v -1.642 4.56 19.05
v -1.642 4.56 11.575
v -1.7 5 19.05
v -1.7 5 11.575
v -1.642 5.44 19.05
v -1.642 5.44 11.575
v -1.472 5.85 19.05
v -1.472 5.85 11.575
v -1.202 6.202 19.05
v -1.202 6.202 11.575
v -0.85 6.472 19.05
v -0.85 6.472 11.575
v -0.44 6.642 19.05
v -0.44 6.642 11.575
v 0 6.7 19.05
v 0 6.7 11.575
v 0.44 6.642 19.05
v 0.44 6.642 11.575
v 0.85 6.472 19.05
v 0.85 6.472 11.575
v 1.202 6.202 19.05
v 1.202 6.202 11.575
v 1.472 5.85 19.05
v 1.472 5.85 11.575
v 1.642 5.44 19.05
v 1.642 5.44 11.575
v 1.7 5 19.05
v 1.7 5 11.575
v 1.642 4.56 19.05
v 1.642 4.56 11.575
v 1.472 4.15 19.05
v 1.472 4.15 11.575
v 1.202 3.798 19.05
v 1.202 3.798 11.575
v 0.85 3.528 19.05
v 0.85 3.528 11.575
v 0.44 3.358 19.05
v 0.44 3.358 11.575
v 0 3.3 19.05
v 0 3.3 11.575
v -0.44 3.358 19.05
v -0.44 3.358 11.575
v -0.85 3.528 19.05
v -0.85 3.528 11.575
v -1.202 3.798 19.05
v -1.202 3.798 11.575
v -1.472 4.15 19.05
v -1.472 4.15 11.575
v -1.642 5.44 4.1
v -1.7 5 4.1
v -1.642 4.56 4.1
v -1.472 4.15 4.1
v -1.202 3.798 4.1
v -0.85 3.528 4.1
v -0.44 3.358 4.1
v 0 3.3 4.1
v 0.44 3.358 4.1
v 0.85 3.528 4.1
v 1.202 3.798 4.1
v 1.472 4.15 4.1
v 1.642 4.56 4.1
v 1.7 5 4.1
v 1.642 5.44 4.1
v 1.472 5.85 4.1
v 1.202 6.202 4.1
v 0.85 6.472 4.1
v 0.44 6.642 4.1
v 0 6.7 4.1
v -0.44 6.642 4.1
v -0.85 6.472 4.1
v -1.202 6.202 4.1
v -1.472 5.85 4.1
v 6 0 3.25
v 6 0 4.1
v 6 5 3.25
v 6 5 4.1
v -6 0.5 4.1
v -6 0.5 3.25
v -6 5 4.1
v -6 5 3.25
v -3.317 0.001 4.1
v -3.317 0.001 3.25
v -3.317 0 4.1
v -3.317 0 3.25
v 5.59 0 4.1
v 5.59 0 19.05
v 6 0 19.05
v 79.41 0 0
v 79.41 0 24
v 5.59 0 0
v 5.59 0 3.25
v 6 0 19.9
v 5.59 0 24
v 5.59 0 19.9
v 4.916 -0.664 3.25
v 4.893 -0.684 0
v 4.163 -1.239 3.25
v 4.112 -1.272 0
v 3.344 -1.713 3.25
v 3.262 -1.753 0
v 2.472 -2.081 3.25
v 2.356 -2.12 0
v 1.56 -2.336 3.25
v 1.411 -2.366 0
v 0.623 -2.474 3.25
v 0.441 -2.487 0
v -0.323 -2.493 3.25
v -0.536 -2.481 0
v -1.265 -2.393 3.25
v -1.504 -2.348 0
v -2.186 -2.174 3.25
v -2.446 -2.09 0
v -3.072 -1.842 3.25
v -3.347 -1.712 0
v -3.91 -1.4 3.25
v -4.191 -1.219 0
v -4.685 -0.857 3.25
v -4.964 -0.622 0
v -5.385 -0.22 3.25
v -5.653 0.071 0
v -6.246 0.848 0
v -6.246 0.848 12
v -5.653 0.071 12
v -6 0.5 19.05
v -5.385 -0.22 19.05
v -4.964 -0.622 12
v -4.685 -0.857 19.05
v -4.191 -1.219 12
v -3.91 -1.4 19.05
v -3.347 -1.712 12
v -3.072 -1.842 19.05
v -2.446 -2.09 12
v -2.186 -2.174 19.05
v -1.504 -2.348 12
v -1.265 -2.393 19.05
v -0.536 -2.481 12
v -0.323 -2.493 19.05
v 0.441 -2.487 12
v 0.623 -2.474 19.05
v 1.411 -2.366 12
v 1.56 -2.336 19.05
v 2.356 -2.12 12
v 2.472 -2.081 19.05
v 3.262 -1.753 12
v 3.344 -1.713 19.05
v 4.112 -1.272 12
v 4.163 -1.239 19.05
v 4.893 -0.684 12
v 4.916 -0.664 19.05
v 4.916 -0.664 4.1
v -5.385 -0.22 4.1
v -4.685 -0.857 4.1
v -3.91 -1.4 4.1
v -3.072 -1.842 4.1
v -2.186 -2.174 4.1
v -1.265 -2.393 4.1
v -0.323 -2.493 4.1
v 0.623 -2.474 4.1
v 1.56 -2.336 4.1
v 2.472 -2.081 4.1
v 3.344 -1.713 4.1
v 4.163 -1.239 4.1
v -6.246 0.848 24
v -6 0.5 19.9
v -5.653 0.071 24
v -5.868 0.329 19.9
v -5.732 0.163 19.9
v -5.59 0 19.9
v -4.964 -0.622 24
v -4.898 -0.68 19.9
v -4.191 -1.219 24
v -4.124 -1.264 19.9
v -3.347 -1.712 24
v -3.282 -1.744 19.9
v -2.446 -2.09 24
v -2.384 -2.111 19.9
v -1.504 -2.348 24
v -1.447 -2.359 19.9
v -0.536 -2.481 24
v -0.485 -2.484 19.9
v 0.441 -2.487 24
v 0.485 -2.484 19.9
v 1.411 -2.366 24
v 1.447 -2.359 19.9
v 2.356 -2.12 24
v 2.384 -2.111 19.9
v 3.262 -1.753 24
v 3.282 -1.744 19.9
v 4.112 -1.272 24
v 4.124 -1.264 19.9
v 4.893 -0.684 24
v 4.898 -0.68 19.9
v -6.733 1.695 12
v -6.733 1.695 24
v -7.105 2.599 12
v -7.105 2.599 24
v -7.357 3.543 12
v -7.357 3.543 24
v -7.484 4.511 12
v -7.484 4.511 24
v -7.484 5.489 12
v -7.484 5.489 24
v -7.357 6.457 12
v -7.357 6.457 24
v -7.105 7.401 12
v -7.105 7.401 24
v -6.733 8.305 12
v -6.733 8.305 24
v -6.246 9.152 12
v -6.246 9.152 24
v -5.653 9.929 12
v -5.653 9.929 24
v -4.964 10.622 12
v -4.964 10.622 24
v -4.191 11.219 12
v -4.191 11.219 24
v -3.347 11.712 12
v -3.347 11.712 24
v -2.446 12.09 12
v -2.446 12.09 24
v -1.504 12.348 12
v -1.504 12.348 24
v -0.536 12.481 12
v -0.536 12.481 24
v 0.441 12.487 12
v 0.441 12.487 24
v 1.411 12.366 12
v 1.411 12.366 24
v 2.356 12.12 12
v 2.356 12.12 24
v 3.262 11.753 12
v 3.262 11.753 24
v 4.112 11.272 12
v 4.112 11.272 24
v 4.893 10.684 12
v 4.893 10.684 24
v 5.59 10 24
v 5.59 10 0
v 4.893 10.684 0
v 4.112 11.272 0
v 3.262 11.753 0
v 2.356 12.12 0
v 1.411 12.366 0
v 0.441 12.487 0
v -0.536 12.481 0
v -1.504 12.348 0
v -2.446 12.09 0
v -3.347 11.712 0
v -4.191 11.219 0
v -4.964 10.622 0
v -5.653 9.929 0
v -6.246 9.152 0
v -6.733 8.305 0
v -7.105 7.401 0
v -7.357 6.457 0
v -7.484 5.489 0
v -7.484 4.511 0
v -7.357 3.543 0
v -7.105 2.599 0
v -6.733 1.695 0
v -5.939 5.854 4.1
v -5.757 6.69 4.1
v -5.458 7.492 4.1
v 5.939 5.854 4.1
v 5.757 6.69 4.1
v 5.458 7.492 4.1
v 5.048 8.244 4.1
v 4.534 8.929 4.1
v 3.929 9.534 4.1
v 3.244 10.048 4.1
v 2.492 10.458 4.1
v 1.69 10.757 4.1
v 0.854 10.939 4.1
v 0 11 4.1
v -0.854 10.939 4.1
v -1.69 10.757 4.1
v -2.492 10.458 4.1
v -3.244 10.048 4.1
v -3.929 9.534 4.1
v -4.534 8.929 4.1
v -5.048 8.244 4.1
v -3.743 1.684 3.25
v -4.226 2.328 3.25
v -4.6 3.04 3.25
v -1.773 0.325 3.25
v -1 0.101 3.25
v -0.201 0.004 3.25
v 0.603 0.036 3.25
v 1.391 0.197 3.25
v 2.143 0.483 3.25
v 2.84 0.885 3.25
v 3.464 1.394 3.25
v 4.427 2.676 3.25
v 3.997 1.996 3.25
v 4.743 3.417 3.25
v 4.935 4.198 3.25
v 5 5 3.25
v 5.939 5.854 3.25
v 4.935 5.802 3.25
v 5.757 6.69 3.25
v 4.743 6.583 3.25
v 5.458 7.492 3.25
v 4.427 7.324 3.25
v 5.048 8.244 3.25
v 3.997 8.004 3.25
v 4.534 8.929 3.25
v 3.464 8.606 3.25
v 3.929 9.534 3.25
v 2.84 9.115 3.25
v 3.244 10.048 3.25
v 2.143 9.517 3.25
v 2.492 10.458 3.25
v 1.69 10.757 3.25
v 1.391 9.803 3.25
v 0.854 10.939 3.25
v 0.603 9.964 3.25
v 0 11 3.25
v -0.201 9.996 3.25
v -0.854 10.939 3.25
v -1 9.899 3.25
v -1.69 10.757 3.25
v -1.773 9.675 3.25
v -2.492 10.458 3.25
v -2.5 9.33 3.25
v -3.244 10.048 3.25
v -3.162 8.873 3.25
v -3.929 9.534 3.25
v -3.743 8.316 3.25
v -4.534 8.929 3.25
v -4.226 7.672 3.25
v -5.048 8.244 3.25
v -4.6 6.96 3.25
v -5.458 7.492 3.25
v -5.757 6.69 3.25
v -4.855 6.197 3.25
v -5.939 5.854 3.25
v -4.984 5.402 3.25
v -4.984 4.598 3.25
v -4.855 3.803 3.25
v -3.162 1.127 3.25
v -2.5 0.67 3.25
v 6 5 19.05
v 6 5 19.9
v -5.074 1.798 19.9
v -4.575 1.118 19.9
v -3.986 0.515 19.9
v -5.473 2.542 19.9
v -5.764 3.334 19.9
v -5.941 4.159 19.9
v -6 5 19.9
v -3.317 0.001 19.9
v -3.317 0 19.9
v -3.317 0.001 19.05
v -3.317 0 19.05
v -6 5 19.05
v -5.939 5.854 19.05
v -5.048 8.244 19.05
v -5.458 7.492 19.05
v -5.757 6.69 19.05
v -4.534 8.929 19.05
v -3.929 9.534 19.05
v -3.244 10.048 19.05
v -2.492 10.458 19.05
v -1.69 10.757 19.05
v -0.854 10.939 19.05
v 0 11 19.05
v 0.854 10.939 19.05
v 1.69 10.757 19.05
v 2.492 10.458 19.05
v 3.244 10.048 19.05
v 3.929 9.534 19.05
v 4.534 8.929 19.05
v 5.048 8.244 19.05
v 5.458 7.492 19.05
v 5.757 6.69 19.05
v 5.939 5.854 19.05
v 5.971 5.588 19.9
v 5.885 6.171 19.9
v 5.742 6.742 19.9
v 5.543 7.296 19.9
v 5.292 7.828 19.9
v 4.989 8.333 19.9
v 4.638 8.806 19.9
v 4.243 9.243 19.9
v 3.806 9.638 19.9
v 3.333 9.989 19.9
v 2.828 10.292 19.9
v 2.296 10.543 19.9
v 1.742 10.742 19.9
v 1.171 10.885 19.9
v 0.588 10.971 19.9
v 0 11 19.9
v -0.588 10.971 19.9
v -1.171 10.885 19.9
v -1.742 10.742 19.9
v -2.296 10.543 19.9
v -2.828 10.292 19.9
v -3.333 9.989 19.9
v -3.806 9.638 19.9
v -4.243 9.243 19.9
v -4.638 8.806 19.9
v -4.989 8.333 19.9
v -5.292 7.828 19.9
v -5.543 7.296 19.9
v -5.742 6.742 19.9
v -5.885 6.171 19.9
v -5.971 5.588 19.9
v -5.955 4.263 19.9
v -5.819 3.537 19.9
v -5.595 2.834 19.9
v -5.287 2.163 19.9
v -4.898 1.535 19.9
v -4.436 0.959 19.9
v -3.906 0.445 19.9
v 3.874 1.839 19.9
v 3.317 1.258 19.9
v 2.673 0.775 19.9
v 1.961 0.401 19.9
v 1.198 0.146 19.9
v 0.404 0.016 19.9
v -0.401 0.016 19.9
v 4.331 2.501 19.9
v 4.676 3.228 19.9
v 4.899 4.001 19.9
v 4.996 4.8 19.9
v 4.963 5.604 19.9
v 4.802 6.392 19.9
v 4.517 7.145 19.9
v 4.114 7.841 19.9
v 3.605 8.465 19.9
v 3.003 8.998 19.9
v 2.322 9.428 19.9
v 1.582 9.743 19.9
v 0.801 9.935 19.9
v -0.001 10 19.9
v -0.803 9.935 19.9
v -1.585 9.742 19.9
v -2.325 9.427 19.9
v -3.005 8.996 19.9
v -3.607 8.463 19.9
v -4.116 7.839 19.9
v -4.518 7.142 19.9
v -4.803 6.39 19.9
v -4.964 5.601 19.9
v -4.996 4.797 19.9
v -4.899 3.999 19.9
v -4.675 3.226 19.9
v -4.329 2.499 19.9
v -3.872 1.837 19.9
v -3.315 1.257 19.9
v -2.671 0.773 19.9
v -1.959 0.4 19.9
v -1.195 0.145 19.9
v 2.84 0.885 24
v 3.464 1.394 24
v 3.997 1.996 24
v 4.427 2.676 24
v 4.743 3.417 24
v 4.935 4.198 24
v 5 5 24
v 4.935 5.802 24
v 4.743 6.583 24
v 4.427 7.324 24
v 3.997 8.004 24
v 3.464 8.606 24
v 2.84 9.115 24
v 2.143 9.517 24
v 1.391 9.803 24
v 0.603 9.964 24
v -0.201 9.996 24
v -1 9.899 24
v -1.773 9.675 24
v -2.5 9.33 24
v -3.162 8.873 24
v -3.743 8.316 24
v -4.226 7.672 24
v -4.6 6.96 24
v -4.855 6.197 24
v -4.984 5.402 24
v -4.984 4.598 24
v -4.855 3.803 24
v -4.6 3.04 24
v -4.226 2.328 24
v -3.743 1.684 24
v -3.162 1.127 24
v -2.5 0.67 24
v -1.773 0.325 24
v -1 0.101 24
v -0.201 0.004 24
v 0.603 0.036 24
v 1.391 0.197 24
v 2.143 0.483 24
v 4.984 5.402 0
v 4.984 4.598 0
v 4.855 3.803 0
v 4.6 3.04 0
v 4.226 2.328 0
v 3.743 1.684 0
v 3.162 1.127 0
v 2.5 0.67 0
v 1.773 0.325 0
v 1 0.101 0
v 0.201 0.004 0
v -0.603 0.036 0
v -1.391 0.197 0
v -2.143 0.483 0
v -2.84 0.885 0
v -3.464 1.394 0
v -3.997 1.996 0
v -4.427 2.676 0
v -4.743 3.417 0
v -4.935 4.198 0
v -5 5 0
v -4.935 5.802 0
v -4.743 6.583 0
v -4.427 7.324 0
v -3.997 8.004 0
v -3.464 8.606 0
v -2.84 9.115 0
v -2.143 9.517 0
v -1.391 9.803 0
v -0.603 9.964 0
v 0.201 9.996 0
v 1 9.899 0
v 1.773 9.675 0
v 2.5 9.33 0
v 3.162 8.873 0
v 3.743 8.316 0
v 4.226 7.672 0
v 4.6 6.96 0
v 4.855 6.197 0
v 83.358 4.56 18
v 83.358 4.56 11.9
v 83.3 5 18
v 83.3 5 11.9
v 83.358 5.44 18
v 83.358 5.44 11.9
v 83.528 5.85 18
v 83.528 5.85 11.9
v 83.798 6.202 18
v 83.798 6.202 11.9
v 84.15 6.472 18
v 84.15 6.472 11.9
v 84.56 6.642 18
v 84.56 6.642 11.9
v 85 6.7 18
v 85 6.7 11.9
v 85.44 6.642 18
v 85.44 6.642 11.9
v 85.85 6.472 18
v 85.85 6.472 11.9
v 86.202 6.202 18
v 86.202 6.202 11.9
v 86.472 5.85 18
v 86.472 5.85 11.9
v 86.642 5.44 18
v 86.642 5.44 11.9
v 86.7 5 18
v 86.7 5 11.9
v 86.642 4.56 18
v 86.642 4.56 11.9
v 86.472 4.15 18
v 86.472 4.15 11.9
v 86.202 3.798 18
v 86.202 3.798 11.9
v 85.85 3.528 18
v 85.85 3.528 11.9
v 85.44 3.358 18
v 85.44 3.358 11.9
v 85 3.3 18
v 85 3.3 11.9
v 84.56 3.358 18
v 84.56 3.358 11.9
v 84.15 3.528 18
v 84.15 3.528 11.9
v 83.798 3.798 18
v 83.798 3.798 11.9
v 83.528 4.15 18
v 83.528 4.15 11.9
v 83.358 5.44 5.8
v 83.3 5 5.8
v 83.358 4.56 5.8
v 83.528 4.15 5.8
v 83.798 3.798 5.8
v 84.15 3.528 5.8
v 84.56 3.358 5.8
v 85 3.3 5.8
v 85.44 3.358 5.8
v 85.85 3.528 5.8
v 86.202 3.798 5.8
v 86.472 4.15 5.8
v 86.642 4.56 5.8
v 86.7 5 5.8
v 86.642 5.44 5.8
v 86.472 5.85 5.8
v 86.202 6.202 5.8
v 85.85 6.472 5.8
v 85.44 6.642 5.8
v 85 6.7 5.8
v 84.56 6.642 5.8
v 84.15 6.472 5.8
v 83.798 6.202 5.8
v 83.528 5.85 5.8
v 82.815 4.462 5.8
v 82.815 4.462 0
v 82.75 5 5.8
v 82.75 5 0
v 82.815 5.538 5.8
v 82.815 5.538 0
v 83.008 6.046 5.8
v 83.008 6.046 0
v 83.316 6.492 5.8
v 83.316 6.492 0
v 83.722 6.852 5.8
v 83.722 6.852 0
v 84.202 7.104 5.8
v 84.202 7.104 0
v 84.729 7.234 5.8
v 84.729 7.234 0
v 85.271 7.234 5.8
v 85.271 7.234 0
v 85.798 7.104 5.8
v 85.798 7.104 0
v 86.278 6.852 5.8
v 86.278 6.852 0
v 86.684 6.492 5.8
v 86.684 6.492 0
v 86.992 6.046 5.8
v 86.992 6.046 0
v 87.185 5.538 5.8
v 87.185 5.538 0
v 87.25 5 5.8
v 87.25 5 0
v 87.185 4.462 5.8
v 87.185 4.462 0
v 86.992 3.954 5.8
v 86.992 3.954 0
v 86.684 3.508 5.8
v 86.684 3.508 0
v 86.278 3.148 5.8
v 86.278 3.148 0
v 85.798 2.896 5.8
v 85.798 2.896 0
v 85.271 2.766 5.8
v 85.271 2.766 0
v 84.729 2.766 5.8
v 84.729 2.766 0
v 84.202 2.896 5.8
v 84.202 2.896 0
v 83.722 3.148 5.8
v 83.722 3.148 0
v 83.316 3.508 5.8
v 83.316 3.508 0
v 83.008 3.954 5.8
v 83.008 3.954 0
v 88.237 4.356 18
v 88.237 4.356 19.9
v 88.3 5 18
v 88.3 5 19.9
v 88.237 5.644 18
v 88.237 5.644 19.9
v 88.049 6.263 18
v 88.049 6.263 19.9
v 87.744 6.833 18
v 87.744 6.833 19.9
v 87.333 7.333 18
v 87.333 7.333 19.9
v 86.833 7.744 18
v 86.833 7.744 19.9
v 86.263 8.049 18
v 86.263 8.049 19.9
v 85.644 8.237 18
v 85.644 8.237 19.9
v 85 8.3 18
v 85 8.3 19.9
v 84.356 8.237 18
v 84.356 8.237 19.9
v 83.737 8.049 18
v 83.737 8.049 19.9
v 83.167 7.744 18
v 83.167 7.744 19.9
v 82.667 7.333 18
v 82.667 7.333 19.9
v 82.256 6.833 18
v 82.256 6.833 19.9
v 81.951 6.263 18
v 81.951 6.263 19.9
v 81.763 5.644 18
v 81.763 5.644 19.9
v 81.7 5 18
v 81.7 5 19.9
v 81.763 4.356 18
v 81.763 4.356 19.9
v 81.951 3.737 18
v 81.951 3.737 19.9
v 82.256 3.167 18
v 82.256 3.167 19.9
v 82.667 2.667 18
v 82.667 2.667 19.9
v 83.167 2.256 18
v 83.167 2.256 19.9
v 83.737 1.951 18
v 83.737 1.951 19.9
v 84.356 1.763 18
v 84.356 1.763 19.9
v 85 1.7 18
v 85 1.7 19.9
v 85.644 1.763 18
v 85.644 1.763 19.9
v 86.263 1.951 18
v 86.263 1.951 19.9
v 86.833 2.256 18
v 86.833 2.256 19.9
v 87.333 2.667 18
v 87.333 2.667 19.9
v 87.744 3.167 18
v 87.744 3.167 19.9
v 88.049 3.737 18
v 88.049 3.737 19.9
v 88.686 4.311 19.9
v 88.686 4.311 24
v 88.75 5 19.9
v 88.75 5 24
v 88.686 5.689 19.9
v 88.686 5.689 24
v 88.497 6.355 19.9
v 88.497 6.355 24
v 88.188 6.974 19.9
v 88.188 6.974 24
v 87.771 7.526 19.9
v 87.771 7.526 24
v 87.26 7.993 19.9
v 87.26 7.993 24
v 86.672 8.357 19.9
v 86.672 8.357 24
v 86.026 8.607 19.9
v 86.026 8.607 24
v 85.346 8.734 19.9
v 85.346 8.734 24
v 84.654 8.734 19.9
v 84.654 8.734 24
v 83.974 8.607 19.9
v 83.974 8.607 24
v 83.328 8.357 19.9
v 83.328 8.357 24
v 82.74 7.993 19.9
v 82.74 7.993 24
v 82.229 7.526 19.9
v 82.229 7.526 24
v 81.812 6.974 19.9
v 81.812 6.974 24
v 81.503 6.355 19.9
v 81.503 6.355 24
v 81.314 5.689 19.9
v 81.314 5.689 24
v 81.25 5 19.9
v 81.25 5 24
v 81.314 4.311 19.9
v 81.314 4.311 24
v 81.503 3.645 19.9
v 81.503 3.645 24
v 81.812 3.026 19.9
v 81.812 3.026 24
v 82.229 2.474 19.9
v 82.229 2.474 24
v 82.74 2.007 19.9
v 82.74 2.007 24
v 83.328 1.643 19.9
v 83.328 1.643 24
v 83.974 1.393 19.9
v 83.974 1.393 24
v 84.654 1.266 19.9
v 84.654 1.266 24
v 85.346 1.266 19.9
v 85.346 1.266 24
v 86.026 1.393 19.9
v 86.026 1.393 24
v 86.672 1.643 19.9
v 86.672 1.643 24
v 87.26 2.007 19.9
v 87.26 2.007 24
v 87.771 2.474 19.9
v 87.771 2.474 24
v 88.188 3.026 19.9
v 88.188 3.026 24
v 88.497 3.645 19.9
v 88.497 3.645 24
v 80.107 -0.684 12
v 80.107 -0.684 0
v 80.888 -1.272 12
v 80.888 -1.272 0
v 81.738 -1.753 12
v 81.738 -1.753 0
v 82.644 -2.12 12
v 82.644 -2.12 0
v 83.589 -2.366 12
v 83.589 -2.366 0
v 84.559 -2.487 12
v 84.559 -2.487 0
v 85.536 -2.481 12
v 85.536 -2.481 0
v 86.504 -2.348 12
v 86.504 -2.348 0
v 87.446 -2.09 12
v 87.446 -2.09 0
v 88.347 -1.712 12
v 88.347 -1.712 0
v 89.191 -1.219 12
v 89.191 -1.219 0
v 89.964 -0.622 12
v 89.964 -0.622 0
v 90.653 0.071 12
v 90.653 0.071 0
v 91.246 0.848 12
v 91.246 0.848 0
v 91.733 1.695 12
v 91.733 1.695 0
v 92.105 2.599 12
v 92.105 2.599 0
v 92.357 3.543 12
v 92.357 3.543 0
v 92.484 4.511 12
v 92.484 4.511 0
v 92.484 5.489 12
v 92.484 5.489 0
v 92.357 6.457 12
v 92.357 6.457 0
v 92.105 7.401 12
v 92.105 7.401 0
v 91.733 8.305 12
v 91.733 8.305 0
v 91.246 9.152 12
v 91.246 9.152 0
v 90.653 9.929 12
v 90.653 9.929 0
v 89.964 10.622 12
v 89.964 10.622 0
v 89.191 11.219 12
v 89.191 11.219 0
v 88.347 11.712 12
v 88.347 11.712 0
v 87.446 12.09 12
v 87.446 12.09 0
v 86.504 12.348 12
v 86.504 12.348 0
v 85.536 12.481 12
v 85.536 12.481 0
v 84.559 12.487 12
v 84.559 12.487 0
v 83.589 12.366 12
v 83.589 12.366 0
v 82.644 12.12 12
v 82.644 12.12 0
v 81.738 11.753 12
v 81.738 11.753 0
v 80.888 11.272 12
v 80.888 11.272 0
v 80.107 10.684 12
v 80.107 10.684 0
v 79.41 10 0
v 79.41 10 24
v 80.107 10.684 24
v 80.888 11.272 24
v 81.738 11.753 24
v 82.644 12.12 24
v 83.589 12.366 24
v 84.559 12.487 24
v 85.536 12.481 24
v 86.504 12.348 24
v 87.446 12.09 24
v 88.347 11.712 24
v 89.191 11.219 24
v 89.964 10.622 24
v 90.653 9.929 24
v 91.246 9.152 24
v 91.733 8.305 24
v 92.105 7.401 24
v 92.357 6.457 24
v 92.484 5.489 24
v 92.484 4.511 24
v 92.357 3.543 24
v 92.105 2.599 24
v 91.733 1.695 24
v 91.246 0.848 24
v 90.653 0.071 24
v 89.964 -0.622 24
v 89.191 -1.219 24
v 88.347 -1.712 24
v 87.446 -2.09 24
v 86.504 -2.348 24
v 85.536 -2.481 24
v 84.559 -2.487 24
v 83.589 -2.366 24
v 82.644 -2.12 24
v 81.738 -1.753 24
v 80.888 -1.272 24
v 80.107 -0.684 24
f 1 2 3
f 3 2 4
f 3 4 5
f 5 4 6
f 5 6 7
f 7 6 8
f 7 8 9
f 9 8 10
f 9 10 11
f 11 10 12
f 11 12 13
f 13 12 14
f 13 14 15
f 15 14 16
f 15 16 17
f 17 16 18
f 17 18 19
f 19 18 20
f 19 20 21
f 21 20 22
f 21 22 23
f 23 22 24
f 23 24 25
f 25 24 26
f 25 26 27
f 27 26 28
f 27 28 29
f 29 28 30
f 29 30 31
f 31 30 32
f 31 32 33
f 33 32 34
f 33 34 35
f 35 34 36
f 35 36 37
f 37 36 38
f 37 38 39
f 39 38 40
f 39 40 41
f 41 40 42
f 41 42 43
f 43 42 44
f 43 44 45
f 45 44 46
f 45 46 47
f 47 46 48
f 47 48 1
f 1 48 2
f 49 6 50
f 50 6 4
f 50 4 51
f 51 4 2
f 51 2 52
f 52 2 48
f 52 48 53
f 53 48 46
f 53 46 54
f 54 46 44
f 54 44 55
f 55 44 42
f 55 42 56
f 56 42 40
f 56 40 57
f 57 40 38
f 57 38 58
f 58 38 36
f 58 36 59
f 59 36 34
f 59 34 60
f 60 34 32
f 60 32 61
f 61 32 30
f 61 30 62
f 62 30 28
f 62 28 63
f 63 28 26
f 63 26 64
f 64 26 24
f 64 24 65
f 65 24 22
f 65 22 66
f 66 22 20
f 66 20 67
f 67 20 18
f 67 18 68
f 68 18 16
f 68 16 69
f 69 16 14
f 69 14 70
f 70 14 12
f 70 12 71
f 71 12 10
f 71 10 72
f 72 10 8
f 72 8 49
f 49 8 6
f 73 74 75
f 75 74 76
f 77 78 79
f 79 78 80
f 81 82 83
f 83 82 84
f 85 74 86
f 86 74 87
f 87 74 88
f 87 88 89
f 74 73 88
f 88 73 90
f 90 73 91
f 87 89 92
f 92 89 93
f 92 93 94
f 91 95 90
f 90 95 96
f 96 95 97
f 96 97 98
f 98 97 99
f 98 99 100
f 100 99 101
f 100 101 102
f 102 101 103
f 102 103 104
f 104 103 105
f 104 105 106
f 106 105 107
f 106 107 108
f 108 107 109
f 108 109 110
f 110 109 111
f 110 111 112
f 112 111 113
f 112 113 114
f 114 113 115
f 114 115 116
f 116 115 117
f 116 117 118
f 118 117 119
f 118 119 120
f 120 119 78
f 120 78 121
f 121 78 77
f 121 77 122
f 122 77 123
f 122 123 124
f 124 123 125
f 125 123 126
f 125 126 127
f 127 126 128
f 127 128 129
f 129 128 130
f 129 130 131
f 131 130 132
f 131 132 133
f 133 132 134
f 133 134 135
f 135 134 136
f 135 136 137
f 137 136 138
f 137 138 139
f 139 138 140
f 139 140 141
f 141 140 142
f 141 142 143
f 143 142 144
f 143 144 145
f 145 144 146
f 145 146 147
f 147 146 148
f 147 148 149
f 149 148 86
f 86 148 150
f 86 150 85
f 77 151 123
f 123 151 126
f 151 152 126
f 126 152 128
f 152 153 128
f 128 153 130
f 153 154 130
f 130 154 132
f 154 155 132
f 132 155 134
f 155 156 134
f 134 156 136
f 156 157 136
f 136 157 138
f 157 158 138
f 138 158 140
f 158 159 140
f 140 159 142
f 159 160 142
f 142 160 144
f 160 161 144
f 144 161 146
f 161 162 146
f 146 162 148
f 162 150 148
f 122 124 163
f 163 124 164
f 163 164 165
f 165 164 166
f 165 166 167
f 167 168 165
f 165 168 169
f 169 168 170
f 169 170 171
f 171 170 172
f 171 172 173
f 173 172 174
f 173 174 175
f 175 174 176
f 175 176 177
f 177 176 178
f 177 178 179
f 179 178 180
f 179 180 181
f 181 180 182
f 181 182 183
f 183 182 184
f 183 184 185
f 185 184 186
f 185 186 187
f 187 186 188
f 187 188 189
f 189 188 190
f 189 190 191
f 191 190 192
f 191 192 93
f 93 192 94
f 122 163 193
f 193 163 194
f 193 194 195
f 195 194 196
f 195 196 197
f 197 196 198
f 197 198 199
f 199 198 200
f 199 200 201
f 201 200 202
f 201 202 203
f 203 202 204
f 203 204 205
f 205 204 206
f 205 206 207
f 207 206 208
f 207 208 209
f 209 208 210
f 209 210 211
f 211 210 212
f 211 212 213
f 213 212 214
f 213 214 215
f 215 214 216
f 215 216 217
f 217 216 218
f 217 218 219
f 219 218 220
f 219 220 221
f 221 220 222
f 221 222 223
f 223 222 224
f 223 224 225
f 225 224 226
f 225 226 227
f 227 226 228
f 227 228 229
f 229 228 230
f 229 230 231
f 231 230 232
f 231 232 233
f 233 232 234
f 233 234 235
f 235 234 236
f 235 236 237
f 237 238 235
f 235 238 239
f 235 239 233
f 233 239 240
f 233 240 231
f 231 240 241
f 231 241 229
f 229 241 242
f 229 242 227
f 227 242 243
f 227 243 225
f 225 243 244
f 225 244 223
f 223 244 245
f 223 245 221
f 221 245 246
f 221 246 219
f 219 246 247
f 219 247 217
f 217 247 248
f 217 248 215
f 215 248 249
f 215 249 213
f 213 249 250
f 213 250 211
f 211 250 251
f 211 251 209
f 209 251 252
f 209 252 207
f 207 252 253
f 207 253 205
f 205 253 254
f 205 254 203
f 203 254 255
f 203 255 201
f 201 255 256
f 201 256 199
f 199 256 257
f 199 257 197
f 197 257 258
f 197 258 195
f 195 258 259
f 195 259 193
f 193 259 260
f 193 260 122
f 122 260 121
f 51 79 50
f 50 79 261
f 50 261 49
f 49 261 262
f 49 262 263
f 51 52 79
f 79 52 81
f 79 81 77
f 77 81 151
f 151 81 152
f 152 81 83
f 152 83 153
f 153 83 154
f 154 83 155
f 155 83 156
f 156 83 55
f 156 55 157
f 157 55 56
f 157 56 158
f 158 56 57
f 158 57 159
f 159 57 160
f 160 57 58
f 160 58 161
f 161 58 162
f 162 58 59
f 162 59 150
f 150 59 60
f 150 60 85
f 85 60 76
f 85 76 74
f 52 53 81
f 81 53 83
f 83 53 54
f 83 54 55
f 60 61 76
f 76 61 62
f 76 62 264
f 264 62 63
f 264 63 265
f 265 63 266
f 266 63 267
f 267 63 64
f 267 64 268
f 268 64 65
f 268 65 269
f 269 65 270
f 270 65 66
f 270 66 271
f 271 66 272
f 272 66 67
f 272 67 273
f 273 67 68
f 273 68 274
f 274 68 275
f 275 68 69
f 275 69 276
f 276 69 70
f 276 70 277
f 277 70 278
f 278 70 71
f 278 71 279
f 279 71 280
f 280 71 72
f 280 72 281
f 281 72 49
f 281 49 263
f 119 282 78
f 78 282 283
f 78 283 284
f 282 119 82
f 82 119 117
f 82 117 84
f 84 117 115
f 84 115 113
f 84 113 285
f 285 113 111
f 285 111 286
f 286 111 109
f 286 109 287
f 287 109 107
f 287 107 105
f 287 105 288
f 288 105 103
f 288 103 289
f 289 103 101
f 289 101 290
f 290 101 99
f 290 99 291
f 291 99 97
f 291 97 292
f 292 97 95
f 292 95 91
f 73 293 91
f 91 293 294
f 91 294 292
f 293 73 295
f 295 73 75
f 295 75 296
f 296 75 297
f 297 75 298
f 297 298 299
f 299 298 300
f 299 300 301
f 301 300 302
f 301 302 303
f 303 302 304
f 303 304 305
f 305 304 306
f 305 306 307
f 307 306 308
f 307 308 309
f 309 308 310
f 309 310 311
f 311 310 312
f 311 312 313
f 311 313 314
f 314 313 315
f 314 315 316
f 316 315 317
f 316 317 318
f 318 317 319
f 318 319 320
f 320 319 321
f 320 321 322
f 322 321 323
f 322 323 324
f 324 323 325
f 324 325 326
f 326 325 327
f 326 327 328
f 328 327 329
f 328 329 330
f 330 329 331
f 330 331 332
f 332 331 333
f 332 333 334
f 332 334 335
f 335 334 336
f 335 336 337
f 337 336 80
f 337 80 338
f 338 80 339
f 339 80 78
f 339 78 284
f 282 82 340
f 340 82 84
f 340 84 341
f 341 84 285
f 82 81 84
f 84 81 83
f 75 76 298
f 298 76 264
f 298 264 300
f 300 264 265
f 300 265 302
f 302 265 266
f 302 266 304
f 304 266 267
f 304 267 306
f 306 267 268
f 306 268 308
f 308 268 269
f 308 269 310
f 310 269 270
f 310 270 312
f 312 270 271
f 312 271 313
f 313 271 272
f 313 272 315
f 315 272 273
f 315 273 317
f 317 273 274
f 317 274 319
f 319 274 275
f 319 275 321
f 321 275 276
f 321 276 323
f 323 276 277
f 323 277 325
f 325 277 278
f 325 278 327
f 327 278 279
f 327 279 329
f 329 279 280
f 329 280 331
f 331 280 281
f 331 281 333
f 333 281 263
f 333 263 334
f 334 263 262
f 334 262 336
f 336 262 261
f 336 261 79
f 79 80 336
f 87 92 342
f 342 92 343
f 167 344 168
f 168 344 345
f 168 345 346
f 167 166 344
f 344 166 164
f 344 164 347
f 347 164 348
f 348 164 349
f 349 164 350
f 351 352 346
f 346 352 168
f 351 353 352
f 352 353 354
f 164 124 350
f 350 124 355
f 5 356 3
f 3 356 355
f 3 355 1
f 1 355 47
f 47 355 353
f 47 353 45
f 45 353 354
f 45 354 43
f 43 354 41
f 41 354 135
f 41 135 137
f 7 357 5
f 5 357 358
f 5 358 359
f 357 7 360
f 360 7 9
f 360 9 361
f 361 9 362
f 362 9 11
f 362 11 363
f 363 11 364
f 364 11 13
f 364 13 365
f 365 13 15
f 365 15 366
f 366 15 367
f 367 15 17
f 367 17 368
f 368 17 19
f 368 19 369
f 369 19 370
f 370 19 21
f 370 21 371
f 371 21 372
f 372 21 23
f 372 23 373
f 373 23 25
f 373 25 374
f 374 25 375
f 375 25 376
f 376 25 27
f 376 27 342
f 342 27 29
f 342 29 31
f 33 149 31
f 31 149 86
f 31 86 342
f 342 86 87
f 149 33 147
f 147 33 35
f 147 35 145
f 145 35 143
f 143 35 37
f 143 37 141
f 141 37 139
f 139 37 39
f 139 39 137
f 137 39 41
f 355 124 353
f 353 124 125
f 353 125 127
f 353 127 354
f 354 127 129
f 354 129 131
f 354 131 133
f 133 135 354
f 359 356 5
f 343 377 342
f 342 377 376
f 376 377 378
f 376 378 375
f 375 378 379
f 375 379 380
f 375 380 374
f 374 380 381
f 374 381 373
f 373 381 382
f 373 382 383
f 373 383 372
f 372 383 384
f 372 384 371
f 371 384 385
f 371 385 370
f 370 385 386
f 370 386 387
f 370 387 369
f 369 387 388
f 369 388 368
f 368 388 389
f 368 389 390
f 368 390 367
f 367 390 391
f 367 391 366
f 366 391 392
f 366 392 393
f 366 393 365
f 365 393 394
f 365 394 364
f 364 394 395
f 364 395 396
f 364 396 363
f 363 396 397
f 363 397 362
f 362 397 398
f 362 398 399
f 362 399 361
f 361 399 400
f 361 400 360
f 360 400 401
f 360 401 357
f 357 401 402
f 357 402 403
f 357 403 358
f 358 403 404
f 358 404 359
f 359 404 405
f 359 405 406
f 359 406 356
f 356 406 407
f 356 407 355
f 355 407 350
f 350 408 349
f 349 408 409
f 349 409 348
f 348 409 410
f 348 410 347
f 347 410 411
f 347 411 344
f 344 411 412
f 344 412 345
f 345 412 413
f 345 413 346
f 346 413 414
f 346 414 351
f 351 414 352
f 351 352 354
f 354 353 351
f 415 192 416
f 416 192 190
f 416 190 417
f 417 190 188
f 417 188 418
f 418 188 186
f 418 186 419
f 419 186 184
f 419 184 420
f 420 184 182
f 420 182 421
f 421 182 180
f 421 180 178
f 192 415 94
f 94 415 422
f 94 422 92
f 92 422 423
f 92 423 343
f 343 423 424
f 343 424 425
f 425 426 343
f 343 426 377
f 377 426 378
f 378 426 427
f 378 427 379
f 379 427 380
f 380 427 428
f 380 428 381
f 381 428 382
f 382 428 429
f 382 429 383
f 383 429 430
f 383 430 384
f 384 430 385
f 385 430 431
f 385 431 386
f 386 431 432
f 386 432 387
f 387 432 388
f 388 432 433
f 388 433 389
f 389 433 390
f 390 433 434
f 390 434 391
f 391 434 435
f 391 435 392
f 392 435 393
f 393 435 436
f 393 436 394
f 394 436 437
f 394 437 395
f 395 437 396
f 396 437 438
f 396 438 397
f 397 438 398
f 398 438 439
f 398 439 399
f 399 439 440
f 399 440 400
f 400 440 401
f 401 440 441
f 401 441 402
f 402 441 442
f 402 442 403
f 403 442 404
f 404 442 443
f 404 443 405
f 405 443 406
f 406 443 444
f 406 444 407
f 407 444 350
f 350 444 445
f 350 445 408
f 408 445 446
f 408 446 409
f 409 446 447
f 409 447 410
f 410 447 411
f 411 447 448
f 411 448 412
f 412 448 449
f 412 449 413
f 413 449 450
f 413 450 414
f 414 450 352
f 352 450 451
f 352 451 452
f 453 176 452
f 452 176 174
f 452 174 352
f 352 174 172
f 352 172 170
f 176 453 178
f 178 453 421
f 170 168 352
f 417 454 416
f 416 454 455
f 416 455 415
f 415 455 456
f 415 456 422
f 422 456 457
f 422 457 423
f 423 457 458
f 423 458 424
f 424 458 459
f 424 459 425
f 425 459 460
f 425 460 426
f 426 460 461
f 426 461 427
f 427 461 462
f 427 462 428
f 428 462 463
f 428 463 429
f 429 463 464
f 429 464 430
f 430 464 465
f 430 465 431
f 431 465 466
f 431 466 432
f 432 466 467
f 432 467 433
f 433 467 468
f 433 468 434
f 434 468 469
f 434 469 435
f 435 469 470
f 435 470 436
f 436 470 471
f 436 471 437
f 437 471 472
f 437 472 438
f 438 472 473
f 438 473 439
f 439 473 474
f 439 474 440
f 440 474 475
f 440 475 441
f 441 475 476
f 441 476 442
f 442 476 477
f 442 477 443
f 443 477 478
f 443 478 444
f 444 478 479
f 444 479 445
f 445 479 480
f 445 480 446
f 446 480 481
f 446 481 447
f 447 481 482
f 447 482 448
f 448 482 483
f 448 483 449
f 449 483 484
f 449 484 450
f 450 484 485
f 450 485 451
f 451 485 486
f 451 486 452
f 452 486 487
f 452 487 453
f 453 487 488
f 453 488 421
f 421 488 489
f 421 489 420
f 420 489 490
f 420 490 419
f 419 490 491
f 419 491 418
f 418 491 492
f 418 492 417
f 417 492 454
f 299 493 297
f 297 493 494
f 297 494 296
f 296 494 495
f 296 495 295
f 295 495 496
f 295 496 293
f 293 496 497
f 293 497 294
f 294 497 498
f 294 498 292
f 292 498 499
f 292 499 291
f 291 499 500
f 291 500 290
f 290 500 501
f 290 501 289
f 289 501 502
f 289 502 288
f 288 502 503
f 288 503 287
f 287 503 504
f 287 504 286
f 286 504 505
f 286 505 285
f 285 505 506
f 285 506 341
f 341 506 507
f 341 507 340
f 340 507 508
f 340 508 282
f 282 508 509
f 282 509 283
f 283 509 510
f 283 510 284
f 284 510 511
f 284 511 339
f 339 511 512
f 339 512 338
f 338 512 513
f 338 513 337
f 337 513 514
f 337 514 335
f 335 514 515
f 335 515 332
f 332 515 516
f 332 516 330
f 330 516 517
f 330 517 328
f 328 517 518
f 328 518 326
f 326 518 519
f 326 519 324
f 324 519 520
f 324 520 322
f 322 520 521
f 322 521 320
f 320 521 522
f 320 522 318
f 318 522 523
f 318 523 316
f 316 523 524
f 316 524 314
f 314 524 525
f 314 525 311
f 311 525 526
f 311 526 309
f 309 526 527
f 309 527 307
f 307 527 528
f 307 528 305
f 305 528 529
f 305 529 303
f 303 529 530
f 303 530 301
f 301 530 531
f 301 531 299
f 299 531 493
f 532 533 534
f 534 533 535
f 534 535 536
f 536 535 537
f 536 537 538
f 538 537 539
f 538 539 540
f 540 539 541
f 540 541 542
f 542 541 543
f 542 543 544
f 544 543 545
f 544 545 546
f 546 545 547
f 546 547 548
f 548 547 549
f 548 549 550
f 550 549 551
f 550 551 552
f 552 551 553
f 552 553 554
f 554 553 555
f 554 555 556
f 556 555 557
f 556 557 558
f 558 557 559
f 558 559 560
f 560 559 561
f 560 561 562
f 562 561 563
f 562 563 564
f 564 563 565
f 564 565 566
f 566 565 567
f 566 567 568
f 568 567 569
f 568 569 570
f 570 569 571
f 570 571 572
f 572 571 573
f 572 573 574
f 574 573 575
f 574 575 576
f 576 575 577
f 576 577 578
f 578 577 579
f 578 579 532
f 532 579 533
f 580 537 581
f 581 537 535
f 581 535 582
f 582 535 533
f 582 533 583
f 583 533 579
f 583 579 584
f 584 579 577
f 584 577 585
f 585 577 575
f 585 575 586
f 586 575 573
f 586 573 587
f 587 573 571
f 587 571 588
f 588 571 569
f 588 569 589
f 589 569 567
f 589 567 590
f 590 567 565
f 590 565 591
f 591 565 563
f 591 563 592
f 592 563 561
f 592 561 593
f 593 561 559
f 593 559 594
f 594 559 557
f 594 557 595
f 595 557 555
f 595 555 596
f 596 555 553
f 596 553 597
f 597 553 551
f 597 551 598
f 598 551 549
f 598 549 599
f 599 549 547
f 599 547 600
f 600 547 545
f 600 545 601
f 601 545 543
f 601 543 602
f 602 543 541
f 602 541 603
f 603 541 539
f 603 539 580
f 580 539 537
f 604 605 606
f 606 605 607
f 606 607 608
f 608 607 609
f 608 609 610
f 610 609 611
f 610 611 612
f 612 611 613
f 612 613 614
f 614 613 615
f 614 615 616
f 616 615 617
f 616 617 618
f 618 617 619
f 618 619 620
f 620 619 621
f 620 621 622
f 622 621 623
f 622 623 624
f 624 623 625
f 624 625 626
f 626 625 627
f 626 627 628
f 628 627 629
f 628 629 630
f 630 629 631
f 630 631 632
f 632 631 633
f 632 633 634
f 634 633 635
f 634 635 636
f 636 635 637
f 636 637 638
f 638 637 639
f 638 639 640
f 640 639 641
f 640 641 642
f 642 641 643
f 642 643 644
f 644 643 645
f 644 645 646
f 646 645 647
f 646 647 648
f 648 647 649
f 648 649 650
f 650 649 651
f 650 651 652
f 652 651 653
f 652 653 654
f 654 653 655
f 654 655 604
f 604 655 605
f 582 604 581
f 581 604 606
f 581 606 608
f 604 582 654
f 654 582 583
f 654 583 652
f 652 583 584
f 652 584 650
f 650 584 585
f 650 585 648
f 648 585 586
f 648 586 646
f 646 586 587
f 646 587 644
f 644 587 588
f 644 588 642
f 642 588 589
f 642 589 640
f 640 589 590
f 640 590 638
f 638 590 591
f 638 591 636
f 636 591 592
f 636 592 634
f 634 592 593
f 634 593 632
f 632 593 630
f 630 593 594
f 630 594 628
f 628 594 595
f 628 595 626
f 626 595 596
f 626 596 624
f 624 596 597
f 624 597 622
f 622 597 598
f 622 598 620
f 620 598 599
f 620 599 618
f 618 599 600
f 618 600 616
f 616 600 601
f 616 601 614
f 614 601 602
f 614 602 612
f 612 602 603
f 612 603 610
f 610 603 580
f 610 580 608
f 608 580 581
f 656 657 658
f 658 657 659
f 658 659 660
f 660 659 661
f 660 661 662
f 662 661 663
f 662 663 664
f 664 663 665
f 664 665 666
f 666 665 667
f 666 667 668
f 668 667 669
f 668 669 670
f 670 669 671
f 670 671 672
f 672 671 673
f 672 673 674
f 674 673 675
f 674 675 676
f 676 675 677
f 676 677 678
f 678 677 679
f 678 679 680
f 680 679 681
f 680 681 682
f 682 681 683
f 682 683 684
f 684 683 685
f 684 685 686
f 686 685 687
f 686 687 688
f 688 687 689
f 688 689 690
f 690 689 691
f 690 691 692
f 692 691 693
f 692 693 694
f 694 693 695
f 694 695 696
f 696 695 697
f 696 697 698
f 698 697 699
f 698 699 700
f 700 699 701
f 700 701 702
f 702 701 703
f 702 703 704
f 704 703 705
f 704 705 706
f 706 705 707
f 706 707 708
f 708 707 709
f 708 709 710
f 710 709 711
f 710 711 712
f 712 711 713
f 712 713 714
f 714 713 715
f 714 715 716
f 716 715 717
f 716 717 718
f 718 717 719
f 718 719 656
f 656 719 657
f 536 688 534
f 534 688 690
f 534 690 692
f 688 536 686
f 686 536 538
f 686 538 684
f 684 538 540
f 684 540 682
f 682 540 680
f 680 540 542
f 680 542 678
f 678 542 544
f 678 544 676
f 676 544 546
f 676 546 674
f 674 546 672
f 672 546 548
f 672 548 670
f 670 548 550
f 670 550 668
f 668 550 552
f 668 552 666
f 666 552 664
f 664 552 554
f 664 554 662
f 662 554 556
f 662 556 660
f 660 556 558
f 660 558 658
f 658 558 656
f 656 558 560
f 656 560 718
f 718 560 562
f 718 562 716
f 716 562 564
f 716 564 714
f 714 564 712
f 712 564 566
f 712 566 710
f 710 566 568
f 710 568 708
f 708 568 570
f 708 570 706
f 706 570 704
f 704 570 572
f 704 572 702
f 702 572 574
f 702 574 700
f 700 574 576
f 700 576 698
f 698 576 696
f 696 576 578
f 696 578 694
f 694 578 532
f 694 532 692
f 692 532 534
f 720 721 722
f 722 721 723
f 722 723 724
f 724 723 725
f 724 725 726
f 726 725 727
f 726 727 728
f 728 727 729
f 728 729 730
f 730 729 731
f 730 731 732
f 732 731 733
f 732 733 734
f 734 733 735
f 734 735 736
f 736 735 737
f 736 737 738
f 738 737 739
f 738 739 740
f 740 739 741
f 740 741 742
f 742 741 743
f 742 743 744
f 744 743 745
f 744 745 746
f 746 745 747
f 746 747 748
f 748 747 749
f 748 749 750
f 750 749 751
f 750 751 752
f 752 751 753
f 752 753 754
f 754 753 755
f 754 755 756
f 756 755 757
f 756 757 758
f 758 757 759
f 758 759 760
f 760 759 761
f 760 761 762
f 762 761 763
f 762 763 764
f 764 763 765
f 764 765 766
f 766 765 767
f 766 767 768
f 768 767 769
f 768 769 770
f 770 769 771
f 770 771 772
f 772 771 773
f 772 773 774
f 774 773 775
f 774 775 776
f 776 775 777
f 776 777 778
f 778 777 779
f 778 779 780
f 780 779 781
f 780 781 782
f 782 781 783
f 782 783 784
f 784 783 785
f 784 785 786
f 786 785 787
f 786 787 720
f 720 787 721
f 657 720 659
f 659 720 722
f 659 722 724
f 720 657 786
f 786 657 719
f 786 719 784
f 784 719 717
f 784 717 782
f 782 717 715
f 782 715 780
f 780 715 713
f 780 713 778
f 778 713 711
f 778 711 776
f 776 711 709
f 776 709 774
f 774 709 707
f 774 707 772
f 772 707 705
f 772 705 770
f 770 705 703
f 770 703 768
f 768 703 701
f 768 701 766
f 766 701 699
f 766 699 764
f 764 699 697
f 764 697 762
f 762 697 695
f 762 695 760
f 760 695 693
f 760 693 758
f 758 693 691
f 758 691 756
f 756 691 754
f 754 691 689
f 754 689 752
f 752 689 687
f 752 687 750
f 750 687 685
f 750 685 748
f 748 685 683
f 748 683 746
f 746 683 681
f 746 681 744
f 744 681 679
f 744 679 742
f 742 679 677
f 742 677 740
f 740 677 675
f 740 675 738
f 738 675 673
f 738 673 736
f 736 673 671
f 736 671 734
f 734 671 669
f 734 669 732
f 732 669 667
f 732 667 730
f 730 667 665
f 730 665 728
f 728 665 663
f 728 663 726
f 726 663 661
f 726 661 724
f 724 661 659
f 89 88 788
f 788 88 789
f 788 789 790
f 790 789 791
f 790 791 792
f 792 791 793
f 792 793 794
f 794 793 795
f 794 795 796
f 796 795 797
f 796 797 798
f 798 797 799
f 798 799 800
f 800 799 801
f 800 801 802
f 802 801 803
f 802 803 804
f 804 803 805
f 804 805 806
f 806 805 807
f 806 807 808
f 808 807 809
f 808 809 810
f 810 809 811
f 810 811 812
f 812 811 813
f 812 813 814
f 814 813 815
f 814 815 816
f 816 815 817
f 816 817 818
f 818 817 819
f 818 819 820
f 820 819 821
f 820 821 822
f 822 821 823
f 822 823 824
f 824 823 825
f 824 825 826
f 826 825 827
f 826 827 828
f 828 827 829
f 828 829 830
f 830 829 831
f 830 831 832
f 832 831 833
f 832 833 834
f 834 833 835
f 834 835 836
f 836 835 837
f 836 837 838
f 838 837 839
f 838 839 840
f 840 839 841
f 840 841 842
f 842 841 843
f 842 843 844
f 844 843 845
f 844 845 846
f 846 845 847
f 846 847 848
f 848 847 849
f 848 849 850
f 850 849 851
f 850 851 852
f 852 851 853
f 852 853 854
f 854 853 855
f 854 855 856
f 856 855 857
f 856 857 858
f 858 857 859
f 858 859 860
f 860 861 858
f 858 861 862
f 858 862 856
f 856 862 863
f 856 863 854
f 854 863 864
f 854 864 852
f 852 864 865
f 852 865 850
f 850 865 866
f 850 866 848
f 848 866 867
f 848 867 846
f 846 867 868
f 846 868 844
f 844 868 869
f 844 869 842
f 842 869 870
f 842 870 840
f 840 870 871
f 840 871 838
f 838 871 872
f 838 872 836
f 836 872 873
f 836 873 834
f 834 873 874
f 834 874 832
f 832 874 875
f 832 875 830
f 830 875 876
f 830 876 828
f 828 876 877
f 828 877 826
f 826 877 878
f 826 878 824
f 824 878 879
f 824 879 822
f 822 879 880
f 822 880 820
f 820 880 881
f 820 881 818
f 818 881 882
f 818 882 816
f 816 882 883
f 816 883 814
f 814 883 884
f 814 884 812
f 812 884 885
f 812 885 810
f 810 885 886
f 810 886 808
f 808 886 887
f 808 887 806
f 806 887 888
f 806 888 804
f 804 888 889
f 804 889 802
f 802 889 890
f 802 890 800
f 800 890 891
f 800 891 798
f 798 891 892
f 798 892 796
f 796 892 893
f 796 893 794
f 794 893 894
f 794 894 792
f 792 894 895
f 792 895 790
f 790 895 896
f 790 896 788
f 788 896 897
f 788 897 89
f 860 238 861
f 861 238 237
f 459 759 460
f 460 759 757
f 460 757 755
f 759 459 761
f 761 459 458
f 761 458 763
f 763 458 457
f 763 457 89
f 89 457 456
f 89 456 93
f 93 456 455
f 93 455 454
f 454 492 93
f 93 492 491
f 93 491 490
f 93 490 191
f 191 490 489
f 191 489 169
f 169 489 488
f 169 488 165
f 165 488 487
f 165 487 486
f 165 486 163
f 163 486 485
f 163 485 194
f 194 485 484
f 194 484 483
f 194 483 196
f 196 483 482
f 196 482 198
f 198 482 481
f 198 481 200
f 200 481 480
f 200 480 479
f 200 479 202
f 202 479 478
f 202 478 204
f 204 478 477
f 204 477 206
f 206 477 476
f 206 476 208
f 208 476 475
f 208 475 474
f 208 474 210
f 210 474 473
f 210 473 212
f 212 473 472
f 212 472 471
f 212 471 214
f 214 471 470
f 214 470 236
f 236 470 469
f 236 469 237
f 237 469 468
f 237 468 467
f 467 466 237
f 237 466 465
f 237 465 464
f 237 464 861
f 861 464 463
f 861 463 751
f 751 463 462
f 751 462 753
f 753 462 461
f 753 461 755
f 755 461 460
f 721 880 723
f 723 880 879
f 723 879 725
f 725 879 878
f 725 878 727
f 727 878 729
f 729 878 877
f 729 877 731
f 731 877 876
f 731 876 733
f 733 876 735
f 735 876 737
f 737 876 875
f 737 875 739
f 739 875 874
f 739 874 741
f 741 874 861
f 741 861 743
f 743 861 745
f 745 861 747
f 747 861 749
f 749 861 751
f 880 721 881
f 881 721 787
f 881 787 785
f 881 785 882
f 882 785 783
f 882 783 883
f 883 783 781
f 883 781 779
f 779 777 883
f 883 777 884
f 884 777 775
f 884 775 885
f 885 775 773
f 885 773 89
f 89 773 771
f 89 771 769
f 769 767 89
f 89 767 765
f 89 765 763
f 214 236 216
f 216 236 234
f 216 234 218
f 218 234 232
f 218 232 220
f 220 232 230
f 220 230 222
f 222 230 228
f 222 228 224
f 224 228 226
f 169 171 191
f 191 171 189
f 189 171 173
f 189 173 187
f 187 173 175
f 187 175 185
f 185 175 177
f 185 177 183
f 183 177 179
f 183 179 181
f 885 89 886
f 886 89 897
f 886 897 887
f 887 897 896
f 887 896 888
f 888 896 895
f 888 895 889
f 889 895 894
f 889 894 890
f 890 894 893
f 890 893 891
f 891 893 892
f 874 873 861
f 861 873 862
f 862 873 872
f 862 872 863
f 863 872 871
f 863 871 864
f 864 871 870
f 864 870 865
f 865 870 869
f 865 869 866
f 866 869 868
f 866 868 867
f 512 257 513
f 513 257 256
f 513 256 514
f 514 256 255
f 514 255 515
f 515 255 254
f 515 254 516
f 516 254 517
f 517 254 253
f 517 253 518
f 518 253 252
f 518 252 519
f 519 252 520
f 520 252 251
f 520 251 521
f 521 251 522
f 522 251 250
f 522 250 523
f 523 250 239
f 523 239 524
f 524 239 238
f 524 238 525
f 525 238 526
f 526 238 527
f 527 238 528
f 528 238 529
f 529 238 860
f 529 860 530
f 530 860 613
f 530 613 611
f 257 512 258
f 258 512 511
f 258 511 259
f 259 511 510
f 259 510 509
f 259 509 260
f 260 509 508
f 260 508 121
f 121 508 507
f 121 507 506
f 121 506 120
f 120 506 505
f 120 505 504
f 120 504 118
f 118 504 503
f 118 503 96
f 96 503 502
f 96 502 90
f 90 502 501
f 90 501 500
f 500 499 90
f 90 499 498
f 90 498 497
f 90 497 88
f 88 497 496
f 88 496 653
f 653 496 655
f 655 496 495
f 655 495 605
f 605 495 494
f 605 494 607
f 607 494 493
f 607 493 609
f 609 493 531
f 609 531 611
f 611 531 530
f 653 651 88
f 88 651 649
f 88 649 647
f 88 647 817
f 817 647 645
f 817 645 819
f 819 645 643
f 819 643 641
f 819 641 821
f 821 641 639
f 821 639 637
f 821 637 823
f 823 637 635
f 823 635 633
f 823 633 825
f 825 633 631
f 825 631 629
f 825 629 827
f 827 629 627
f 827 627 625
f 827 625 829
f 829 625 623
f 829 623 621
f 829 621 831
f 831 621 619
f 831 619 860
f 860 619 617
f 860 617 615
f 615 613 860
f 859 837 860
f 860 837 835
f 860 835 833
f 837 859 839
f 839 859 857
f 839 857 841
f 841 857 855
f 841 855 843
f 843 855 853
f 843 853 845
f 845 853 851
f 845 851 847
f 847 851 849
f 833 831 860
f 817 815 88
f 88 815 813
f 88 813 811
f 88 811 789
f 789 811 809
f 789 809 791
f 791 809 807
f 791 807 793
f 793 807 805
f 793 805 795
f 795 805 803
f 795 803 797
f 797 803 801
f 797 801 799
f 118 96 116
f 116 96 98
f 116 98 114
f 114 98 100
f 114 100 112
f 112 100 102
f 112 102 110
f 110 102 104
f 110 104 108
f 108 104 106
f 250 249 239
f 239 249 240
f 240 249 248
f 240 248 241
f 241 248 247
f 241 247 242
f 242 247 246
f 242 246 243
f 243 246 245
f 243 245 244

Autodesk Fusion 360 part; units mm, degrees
sketch "スケッチ1" plane through (0, 0, 0) normal (0, 0, 1) x (1, 0, 0)
  line L0 (0, 0) -> (85, 0)
  line L1 (85, 0) -> (85, 10)
  line L2 (85, 10) -> (0, 10)
  line L3 (0, 10) -> (0, 0)
  circle A0 centre (85, 5) radius 7.5
  circle A1 centre (0, 5) radius 7.5
  dimension "d1" = 10
  dimension "d2" = 15
  dimension "d3" = 15
extrude "押し出し1" add sketch "スケッチ1" along normal blind 24
sketch "スケッチ2" plane through (0, 0, 24) normal (0, 0, 1) x (-1, 0, 0)
  line L0 (-79.4098, -10) -> (-5.5902, -10)
  arc A0 (-5.5902, -10) -> (-5.5902, 0) centre (0, -5) ccw
  line L1 (-5.5902, 0) -> (-79.4098, 0)
  arc A1 (-79.4098, 0) -> (-79.4098, -10) centre (-85, -5) ccw
  circle A2 centre (-85, -5) radius 3.75
  dimension "d6" = 7.5
extrude "押し出し2" cut sketch "スケッチ2" against normal blind 4.1 contours A2
sketch "スケッチ3" plane through (0, 0, 19.9) normal (0, 0, 1) x (-1, 0, 0)
  circle A0 centre (-85, -5) radius 3.75
  circle A1 centre (-85, -5) radius 3.3
  dimension "d9" = 6.6
extrude "押し出し3" cut sketch "スケッチ3" against normal blind 1.9 contours A1
sketch "スケッチ4" plane through (0, 0, 0) normal (0, 0, -1) x (1, 0, 0)
  line L0 (5.5902, -10) -> (79.4098, -10)
  arc A0 (79.4098, -10) -> (79.4098, 0) centre (85, -5) ccw
  line L1 (79.4098, 0) -> (5.5902, 0)
  arc A1 (5.5902, 0) -> (5.5902, -10) centre (0, -5) ccw
  circle A2 centre (85, -5) radius 2.25
  dimension "d12" = 4.5
extrude "押し出し4" cut sketch "スケッチ4" against normal blind 5.8 contours A2
sketch "スケッチ5" plane through (0, 0, 5.8) normal (0, 0, -1) x (1, 0, 0)
  circle A0 centre (85, -5) radius 2.25
  circle A1 centre (85, -5) radius 1.7
  dimension "d15" = 3.4
extrude "押し出し5" cut sketch "スケッチ5" against normal blind 13 contours A1
sketch "スケッチ6" plane through (0, 0, 0) normal (0, 0, 1) x (1, 0, 0)
  circle A0 centre (0, 5) radius 5
  dimension "d18" = 10
extrude "押し出し6" cut sketch "スケッチ6" along normal blind 4.1
sketch "スケッチ7" plane through (0, 0, 4.1) normal (0, 0, -1) x (1, 0, 0)
  circle A0 centre (0, -5) radius 5
  circle A1 centre (0, -5) radius 6
  dimension "d21" = 12
extrude "押し出し7" cut sketch "スケッチ7" along normal blind 0.85 contours A0 | A1
sketch "スケッチ8" plane through (0, 0, 24) normal (0, 0, 1) x (-1, 0, 0)
  circle A0 centre (-85, -5) radius 3.75
  line L0 (-79.4098, -10) -> (-5.5902, -10)
  arc A1 (-5.5902, -10) -> (-5.5902, 0) centre (0, -5) ccw
  line L1 (-5.5902, 0) -> (-79.4098, 0)
  arc A2 (-79.4098, 0) -> (-79.4098, -10) centre (-85, -5) ccw
  circle A3 centre (0, -5) radius 5
  dimension "d24" = 10
extrude "押し出し8" cut sketch "スケッチ8" against normal blind 4.1 contours A3
sketch "スケッチ9" plane through (0, 0, 19.9) normal (0, 0, 1) x (-1, 0, 0)
  circle A0 centre (0, -5) radius 5
  circle A1 centre (0, -5) radius 6
  dimension "d27" = 12
extrude "押し出し9" cut sketch "スケッチ9" against normal blind 0.85 contours A0 | A1
sketch "スケッチ10" plane through (0, 0, 19.05) normal (0, 0, 1) x (-1, 0, 0)
  circle A0 centre (0, -5) radius 6
  line L0 (-6, -5) -> (6, -5)
  line L1 (6, -5) -> (6, -10)
  line L2 (6, -10) -> (-6, -10)
  line L3 (-6, -10) -> (-6, -5)
sketch "スケッチ11" plane through (0, 0, 0) normal (0, 1, 0) x (1, 0, 0)
  line L0 (6, -19.05) -> (-6.0119, -19.05)
  line L1 (-6.0119, -19.05) -> (-6.0119, -19.9)
  line L2 (-6.0119, -19.9) -> (6, -19.9)
  line L3 (6, -19.9) -> (6, -19.05)
  dimension "d30" = 0.85
extrude "押し出し10" cut sketch "スケッチ11" against normal blind 2.5
sketch "スケッチ12" plane through (0, 0, 0) normal (0, -1, 0) x (1, 0, 0)
  line L0 (-3.3166, 19.05) -> (-3.3166, 19.9)
  line L1 (-3.3166, 19.9) -> (-5.5902, 19.9)
  line L2 (-5.5902, 19.9) -> (-5.5902, 19.05)
  line L3 (-5.5902, 19.05) -> (-3.3166, 19.05)
sketch "スケッチ13" plane through (0, 0, 0) normal (0, -1, 0) x (1, 0, 0)
  line L0 (5.5902, 19.05) -> (5.5902, 0)
  line L1 (5.5902, 0) -> (79.4098, 0)
  line L2 (79.4098, 0) -> (79.4098, 24)
  line L3 (79.4098, 24) -> (5.5902, 24)
  line L4 (5.5902, 24) -> (5.5902, 19.9)
  line L5 (5.5902, 19.9) -> (3.3166, 19.9)
  line L6 (3.3166, 19.9) -> (3.3166, 19.05)
  line L7 (3.3166, 19.05) -> (5.5902, 19.05)
  line L8 (6, 19.05) -> (3.3166, 19.05)
  line L9 (3.3166, 19.05) -> (3.3166, 19.9)
  line L10 (3.3166, 19.9) -> (6, 19.9)
  line L11 (6, 19.9) -> (6, 19.05)
sketch "スケッチ14" plane through (0, 0, 0) normal (0, -1, 0) x (1, 0, 0)
  line L0 (-6, 19.05) -> (-3.3174, 19.05)
  line L1 (-3.3174, 19.05) -> (-3.3174, 19.8997)
  line L2 (-3.3174, 19.8997) -> (-6, 19.8997)
  line L3 (-6, 19.8997) -> (-6, 19.05)
extrude "押し出し11" cut sketch "スケッチ13" sketch "スケッチ14" against normal blind 5 contours L5 L6 L7 L8 L9 L10 L11 of sketch 2
sketch "スケッチ15" plane through (0, 0, 4.1) normal (0, 0, -1) x (1, 0, 0)
  circle A0 centre (0, -5) radius 6
  line L0 (-6, -5) -> (6, -5)
  line L1 (6, -5) -> (6, -10)
  line L2 (6, -10) -> (-6, -10)
  line L3 (-6, -10) -> (-6, -5)
sketch "スケッチ16" plane through (0, 0, 0) normal (0, 1, 0) x (1, 0, 0)
  line L0 (-6, -4.1) -> (6.0025, -4.1)
  line L1 (6.0025, -4.1) -> (6.0025, -3.25)
  line L2 (6.0025, -3.25) -> (-6, -3.25)
  line L3 (-6, -3.25) -> (-6, -4.1)
  dimension "d35" = 0.85
extrude "押し出し12" cut sketch "スケッチ16" against normal blind 2.5
sketch "スケッチ17" plane through (0, 0, 0) normal (0, -1, 0) x (1, 0, 0)
  line L0 (5.5902, 3.25) -> (5.5902, 0)
  line L1 (5.5902, 0) -> (79.4098, 0)
  line L2 (79.4098, 0) -> (79.4098, 24)
  line L3 (79.4098, 24) -> (5.5902, 24)
  line L4 (5.5902, 24) -> (5.5902, 19.9)
  line L5 (5.5902, 19.9) -> (6, 19.9)
  line L6 (6, 19.9) -> (6, 19.05)
  line L7 (6, 19.05) -> (5.5902, 19.05)
  line L8 (5.5902, 19.05) -> (5.5902, 4.1)
  line L9 (5.5902, 4.1) -> (3.3166, 4.1)
  line L10 (3.3166, 4.1) -> (3.3166, 3.25)
  line L11 (3.3166, 3.25) -> (5.5902, 3.25)
  line L12 (6, 4.1) -> (3.3166, 4.1)
  line L13 (3.3166, 4.1) -> (3.3166, 3.25)
  line L14 (3.3166, 3.25) -> (6, 3.25)
  line L15 (6, 3.25) -> (6, 4.1)
  line L16 (-6, 4.1) -> (-3.3175, 4.1)
  line L17 (-3.3175, 4.1) -> (-3.3175, 3.25)
  line L18 (-3.3175, 3.25) -> (-6, 3.25)
  line L19 (-6, 3.25) -> (-6, 4.1)
extrude "押し出し13" cut sketch "スケッチ17" against normal blind 5 contours L9 L10 L11 L12 L13 L14 L15 | L16 L17 L18 L19
sketch "スケッチ18" plane through (0, 0, 4.1) normal (0, 0, -1) x (1, 0, 0)
  circle A0 centre (0, -5) radius 1.7
  dimension "d40" = 3.4
extrude "押し出し14" cut sketch "スケッチ18" against normal blind 15
